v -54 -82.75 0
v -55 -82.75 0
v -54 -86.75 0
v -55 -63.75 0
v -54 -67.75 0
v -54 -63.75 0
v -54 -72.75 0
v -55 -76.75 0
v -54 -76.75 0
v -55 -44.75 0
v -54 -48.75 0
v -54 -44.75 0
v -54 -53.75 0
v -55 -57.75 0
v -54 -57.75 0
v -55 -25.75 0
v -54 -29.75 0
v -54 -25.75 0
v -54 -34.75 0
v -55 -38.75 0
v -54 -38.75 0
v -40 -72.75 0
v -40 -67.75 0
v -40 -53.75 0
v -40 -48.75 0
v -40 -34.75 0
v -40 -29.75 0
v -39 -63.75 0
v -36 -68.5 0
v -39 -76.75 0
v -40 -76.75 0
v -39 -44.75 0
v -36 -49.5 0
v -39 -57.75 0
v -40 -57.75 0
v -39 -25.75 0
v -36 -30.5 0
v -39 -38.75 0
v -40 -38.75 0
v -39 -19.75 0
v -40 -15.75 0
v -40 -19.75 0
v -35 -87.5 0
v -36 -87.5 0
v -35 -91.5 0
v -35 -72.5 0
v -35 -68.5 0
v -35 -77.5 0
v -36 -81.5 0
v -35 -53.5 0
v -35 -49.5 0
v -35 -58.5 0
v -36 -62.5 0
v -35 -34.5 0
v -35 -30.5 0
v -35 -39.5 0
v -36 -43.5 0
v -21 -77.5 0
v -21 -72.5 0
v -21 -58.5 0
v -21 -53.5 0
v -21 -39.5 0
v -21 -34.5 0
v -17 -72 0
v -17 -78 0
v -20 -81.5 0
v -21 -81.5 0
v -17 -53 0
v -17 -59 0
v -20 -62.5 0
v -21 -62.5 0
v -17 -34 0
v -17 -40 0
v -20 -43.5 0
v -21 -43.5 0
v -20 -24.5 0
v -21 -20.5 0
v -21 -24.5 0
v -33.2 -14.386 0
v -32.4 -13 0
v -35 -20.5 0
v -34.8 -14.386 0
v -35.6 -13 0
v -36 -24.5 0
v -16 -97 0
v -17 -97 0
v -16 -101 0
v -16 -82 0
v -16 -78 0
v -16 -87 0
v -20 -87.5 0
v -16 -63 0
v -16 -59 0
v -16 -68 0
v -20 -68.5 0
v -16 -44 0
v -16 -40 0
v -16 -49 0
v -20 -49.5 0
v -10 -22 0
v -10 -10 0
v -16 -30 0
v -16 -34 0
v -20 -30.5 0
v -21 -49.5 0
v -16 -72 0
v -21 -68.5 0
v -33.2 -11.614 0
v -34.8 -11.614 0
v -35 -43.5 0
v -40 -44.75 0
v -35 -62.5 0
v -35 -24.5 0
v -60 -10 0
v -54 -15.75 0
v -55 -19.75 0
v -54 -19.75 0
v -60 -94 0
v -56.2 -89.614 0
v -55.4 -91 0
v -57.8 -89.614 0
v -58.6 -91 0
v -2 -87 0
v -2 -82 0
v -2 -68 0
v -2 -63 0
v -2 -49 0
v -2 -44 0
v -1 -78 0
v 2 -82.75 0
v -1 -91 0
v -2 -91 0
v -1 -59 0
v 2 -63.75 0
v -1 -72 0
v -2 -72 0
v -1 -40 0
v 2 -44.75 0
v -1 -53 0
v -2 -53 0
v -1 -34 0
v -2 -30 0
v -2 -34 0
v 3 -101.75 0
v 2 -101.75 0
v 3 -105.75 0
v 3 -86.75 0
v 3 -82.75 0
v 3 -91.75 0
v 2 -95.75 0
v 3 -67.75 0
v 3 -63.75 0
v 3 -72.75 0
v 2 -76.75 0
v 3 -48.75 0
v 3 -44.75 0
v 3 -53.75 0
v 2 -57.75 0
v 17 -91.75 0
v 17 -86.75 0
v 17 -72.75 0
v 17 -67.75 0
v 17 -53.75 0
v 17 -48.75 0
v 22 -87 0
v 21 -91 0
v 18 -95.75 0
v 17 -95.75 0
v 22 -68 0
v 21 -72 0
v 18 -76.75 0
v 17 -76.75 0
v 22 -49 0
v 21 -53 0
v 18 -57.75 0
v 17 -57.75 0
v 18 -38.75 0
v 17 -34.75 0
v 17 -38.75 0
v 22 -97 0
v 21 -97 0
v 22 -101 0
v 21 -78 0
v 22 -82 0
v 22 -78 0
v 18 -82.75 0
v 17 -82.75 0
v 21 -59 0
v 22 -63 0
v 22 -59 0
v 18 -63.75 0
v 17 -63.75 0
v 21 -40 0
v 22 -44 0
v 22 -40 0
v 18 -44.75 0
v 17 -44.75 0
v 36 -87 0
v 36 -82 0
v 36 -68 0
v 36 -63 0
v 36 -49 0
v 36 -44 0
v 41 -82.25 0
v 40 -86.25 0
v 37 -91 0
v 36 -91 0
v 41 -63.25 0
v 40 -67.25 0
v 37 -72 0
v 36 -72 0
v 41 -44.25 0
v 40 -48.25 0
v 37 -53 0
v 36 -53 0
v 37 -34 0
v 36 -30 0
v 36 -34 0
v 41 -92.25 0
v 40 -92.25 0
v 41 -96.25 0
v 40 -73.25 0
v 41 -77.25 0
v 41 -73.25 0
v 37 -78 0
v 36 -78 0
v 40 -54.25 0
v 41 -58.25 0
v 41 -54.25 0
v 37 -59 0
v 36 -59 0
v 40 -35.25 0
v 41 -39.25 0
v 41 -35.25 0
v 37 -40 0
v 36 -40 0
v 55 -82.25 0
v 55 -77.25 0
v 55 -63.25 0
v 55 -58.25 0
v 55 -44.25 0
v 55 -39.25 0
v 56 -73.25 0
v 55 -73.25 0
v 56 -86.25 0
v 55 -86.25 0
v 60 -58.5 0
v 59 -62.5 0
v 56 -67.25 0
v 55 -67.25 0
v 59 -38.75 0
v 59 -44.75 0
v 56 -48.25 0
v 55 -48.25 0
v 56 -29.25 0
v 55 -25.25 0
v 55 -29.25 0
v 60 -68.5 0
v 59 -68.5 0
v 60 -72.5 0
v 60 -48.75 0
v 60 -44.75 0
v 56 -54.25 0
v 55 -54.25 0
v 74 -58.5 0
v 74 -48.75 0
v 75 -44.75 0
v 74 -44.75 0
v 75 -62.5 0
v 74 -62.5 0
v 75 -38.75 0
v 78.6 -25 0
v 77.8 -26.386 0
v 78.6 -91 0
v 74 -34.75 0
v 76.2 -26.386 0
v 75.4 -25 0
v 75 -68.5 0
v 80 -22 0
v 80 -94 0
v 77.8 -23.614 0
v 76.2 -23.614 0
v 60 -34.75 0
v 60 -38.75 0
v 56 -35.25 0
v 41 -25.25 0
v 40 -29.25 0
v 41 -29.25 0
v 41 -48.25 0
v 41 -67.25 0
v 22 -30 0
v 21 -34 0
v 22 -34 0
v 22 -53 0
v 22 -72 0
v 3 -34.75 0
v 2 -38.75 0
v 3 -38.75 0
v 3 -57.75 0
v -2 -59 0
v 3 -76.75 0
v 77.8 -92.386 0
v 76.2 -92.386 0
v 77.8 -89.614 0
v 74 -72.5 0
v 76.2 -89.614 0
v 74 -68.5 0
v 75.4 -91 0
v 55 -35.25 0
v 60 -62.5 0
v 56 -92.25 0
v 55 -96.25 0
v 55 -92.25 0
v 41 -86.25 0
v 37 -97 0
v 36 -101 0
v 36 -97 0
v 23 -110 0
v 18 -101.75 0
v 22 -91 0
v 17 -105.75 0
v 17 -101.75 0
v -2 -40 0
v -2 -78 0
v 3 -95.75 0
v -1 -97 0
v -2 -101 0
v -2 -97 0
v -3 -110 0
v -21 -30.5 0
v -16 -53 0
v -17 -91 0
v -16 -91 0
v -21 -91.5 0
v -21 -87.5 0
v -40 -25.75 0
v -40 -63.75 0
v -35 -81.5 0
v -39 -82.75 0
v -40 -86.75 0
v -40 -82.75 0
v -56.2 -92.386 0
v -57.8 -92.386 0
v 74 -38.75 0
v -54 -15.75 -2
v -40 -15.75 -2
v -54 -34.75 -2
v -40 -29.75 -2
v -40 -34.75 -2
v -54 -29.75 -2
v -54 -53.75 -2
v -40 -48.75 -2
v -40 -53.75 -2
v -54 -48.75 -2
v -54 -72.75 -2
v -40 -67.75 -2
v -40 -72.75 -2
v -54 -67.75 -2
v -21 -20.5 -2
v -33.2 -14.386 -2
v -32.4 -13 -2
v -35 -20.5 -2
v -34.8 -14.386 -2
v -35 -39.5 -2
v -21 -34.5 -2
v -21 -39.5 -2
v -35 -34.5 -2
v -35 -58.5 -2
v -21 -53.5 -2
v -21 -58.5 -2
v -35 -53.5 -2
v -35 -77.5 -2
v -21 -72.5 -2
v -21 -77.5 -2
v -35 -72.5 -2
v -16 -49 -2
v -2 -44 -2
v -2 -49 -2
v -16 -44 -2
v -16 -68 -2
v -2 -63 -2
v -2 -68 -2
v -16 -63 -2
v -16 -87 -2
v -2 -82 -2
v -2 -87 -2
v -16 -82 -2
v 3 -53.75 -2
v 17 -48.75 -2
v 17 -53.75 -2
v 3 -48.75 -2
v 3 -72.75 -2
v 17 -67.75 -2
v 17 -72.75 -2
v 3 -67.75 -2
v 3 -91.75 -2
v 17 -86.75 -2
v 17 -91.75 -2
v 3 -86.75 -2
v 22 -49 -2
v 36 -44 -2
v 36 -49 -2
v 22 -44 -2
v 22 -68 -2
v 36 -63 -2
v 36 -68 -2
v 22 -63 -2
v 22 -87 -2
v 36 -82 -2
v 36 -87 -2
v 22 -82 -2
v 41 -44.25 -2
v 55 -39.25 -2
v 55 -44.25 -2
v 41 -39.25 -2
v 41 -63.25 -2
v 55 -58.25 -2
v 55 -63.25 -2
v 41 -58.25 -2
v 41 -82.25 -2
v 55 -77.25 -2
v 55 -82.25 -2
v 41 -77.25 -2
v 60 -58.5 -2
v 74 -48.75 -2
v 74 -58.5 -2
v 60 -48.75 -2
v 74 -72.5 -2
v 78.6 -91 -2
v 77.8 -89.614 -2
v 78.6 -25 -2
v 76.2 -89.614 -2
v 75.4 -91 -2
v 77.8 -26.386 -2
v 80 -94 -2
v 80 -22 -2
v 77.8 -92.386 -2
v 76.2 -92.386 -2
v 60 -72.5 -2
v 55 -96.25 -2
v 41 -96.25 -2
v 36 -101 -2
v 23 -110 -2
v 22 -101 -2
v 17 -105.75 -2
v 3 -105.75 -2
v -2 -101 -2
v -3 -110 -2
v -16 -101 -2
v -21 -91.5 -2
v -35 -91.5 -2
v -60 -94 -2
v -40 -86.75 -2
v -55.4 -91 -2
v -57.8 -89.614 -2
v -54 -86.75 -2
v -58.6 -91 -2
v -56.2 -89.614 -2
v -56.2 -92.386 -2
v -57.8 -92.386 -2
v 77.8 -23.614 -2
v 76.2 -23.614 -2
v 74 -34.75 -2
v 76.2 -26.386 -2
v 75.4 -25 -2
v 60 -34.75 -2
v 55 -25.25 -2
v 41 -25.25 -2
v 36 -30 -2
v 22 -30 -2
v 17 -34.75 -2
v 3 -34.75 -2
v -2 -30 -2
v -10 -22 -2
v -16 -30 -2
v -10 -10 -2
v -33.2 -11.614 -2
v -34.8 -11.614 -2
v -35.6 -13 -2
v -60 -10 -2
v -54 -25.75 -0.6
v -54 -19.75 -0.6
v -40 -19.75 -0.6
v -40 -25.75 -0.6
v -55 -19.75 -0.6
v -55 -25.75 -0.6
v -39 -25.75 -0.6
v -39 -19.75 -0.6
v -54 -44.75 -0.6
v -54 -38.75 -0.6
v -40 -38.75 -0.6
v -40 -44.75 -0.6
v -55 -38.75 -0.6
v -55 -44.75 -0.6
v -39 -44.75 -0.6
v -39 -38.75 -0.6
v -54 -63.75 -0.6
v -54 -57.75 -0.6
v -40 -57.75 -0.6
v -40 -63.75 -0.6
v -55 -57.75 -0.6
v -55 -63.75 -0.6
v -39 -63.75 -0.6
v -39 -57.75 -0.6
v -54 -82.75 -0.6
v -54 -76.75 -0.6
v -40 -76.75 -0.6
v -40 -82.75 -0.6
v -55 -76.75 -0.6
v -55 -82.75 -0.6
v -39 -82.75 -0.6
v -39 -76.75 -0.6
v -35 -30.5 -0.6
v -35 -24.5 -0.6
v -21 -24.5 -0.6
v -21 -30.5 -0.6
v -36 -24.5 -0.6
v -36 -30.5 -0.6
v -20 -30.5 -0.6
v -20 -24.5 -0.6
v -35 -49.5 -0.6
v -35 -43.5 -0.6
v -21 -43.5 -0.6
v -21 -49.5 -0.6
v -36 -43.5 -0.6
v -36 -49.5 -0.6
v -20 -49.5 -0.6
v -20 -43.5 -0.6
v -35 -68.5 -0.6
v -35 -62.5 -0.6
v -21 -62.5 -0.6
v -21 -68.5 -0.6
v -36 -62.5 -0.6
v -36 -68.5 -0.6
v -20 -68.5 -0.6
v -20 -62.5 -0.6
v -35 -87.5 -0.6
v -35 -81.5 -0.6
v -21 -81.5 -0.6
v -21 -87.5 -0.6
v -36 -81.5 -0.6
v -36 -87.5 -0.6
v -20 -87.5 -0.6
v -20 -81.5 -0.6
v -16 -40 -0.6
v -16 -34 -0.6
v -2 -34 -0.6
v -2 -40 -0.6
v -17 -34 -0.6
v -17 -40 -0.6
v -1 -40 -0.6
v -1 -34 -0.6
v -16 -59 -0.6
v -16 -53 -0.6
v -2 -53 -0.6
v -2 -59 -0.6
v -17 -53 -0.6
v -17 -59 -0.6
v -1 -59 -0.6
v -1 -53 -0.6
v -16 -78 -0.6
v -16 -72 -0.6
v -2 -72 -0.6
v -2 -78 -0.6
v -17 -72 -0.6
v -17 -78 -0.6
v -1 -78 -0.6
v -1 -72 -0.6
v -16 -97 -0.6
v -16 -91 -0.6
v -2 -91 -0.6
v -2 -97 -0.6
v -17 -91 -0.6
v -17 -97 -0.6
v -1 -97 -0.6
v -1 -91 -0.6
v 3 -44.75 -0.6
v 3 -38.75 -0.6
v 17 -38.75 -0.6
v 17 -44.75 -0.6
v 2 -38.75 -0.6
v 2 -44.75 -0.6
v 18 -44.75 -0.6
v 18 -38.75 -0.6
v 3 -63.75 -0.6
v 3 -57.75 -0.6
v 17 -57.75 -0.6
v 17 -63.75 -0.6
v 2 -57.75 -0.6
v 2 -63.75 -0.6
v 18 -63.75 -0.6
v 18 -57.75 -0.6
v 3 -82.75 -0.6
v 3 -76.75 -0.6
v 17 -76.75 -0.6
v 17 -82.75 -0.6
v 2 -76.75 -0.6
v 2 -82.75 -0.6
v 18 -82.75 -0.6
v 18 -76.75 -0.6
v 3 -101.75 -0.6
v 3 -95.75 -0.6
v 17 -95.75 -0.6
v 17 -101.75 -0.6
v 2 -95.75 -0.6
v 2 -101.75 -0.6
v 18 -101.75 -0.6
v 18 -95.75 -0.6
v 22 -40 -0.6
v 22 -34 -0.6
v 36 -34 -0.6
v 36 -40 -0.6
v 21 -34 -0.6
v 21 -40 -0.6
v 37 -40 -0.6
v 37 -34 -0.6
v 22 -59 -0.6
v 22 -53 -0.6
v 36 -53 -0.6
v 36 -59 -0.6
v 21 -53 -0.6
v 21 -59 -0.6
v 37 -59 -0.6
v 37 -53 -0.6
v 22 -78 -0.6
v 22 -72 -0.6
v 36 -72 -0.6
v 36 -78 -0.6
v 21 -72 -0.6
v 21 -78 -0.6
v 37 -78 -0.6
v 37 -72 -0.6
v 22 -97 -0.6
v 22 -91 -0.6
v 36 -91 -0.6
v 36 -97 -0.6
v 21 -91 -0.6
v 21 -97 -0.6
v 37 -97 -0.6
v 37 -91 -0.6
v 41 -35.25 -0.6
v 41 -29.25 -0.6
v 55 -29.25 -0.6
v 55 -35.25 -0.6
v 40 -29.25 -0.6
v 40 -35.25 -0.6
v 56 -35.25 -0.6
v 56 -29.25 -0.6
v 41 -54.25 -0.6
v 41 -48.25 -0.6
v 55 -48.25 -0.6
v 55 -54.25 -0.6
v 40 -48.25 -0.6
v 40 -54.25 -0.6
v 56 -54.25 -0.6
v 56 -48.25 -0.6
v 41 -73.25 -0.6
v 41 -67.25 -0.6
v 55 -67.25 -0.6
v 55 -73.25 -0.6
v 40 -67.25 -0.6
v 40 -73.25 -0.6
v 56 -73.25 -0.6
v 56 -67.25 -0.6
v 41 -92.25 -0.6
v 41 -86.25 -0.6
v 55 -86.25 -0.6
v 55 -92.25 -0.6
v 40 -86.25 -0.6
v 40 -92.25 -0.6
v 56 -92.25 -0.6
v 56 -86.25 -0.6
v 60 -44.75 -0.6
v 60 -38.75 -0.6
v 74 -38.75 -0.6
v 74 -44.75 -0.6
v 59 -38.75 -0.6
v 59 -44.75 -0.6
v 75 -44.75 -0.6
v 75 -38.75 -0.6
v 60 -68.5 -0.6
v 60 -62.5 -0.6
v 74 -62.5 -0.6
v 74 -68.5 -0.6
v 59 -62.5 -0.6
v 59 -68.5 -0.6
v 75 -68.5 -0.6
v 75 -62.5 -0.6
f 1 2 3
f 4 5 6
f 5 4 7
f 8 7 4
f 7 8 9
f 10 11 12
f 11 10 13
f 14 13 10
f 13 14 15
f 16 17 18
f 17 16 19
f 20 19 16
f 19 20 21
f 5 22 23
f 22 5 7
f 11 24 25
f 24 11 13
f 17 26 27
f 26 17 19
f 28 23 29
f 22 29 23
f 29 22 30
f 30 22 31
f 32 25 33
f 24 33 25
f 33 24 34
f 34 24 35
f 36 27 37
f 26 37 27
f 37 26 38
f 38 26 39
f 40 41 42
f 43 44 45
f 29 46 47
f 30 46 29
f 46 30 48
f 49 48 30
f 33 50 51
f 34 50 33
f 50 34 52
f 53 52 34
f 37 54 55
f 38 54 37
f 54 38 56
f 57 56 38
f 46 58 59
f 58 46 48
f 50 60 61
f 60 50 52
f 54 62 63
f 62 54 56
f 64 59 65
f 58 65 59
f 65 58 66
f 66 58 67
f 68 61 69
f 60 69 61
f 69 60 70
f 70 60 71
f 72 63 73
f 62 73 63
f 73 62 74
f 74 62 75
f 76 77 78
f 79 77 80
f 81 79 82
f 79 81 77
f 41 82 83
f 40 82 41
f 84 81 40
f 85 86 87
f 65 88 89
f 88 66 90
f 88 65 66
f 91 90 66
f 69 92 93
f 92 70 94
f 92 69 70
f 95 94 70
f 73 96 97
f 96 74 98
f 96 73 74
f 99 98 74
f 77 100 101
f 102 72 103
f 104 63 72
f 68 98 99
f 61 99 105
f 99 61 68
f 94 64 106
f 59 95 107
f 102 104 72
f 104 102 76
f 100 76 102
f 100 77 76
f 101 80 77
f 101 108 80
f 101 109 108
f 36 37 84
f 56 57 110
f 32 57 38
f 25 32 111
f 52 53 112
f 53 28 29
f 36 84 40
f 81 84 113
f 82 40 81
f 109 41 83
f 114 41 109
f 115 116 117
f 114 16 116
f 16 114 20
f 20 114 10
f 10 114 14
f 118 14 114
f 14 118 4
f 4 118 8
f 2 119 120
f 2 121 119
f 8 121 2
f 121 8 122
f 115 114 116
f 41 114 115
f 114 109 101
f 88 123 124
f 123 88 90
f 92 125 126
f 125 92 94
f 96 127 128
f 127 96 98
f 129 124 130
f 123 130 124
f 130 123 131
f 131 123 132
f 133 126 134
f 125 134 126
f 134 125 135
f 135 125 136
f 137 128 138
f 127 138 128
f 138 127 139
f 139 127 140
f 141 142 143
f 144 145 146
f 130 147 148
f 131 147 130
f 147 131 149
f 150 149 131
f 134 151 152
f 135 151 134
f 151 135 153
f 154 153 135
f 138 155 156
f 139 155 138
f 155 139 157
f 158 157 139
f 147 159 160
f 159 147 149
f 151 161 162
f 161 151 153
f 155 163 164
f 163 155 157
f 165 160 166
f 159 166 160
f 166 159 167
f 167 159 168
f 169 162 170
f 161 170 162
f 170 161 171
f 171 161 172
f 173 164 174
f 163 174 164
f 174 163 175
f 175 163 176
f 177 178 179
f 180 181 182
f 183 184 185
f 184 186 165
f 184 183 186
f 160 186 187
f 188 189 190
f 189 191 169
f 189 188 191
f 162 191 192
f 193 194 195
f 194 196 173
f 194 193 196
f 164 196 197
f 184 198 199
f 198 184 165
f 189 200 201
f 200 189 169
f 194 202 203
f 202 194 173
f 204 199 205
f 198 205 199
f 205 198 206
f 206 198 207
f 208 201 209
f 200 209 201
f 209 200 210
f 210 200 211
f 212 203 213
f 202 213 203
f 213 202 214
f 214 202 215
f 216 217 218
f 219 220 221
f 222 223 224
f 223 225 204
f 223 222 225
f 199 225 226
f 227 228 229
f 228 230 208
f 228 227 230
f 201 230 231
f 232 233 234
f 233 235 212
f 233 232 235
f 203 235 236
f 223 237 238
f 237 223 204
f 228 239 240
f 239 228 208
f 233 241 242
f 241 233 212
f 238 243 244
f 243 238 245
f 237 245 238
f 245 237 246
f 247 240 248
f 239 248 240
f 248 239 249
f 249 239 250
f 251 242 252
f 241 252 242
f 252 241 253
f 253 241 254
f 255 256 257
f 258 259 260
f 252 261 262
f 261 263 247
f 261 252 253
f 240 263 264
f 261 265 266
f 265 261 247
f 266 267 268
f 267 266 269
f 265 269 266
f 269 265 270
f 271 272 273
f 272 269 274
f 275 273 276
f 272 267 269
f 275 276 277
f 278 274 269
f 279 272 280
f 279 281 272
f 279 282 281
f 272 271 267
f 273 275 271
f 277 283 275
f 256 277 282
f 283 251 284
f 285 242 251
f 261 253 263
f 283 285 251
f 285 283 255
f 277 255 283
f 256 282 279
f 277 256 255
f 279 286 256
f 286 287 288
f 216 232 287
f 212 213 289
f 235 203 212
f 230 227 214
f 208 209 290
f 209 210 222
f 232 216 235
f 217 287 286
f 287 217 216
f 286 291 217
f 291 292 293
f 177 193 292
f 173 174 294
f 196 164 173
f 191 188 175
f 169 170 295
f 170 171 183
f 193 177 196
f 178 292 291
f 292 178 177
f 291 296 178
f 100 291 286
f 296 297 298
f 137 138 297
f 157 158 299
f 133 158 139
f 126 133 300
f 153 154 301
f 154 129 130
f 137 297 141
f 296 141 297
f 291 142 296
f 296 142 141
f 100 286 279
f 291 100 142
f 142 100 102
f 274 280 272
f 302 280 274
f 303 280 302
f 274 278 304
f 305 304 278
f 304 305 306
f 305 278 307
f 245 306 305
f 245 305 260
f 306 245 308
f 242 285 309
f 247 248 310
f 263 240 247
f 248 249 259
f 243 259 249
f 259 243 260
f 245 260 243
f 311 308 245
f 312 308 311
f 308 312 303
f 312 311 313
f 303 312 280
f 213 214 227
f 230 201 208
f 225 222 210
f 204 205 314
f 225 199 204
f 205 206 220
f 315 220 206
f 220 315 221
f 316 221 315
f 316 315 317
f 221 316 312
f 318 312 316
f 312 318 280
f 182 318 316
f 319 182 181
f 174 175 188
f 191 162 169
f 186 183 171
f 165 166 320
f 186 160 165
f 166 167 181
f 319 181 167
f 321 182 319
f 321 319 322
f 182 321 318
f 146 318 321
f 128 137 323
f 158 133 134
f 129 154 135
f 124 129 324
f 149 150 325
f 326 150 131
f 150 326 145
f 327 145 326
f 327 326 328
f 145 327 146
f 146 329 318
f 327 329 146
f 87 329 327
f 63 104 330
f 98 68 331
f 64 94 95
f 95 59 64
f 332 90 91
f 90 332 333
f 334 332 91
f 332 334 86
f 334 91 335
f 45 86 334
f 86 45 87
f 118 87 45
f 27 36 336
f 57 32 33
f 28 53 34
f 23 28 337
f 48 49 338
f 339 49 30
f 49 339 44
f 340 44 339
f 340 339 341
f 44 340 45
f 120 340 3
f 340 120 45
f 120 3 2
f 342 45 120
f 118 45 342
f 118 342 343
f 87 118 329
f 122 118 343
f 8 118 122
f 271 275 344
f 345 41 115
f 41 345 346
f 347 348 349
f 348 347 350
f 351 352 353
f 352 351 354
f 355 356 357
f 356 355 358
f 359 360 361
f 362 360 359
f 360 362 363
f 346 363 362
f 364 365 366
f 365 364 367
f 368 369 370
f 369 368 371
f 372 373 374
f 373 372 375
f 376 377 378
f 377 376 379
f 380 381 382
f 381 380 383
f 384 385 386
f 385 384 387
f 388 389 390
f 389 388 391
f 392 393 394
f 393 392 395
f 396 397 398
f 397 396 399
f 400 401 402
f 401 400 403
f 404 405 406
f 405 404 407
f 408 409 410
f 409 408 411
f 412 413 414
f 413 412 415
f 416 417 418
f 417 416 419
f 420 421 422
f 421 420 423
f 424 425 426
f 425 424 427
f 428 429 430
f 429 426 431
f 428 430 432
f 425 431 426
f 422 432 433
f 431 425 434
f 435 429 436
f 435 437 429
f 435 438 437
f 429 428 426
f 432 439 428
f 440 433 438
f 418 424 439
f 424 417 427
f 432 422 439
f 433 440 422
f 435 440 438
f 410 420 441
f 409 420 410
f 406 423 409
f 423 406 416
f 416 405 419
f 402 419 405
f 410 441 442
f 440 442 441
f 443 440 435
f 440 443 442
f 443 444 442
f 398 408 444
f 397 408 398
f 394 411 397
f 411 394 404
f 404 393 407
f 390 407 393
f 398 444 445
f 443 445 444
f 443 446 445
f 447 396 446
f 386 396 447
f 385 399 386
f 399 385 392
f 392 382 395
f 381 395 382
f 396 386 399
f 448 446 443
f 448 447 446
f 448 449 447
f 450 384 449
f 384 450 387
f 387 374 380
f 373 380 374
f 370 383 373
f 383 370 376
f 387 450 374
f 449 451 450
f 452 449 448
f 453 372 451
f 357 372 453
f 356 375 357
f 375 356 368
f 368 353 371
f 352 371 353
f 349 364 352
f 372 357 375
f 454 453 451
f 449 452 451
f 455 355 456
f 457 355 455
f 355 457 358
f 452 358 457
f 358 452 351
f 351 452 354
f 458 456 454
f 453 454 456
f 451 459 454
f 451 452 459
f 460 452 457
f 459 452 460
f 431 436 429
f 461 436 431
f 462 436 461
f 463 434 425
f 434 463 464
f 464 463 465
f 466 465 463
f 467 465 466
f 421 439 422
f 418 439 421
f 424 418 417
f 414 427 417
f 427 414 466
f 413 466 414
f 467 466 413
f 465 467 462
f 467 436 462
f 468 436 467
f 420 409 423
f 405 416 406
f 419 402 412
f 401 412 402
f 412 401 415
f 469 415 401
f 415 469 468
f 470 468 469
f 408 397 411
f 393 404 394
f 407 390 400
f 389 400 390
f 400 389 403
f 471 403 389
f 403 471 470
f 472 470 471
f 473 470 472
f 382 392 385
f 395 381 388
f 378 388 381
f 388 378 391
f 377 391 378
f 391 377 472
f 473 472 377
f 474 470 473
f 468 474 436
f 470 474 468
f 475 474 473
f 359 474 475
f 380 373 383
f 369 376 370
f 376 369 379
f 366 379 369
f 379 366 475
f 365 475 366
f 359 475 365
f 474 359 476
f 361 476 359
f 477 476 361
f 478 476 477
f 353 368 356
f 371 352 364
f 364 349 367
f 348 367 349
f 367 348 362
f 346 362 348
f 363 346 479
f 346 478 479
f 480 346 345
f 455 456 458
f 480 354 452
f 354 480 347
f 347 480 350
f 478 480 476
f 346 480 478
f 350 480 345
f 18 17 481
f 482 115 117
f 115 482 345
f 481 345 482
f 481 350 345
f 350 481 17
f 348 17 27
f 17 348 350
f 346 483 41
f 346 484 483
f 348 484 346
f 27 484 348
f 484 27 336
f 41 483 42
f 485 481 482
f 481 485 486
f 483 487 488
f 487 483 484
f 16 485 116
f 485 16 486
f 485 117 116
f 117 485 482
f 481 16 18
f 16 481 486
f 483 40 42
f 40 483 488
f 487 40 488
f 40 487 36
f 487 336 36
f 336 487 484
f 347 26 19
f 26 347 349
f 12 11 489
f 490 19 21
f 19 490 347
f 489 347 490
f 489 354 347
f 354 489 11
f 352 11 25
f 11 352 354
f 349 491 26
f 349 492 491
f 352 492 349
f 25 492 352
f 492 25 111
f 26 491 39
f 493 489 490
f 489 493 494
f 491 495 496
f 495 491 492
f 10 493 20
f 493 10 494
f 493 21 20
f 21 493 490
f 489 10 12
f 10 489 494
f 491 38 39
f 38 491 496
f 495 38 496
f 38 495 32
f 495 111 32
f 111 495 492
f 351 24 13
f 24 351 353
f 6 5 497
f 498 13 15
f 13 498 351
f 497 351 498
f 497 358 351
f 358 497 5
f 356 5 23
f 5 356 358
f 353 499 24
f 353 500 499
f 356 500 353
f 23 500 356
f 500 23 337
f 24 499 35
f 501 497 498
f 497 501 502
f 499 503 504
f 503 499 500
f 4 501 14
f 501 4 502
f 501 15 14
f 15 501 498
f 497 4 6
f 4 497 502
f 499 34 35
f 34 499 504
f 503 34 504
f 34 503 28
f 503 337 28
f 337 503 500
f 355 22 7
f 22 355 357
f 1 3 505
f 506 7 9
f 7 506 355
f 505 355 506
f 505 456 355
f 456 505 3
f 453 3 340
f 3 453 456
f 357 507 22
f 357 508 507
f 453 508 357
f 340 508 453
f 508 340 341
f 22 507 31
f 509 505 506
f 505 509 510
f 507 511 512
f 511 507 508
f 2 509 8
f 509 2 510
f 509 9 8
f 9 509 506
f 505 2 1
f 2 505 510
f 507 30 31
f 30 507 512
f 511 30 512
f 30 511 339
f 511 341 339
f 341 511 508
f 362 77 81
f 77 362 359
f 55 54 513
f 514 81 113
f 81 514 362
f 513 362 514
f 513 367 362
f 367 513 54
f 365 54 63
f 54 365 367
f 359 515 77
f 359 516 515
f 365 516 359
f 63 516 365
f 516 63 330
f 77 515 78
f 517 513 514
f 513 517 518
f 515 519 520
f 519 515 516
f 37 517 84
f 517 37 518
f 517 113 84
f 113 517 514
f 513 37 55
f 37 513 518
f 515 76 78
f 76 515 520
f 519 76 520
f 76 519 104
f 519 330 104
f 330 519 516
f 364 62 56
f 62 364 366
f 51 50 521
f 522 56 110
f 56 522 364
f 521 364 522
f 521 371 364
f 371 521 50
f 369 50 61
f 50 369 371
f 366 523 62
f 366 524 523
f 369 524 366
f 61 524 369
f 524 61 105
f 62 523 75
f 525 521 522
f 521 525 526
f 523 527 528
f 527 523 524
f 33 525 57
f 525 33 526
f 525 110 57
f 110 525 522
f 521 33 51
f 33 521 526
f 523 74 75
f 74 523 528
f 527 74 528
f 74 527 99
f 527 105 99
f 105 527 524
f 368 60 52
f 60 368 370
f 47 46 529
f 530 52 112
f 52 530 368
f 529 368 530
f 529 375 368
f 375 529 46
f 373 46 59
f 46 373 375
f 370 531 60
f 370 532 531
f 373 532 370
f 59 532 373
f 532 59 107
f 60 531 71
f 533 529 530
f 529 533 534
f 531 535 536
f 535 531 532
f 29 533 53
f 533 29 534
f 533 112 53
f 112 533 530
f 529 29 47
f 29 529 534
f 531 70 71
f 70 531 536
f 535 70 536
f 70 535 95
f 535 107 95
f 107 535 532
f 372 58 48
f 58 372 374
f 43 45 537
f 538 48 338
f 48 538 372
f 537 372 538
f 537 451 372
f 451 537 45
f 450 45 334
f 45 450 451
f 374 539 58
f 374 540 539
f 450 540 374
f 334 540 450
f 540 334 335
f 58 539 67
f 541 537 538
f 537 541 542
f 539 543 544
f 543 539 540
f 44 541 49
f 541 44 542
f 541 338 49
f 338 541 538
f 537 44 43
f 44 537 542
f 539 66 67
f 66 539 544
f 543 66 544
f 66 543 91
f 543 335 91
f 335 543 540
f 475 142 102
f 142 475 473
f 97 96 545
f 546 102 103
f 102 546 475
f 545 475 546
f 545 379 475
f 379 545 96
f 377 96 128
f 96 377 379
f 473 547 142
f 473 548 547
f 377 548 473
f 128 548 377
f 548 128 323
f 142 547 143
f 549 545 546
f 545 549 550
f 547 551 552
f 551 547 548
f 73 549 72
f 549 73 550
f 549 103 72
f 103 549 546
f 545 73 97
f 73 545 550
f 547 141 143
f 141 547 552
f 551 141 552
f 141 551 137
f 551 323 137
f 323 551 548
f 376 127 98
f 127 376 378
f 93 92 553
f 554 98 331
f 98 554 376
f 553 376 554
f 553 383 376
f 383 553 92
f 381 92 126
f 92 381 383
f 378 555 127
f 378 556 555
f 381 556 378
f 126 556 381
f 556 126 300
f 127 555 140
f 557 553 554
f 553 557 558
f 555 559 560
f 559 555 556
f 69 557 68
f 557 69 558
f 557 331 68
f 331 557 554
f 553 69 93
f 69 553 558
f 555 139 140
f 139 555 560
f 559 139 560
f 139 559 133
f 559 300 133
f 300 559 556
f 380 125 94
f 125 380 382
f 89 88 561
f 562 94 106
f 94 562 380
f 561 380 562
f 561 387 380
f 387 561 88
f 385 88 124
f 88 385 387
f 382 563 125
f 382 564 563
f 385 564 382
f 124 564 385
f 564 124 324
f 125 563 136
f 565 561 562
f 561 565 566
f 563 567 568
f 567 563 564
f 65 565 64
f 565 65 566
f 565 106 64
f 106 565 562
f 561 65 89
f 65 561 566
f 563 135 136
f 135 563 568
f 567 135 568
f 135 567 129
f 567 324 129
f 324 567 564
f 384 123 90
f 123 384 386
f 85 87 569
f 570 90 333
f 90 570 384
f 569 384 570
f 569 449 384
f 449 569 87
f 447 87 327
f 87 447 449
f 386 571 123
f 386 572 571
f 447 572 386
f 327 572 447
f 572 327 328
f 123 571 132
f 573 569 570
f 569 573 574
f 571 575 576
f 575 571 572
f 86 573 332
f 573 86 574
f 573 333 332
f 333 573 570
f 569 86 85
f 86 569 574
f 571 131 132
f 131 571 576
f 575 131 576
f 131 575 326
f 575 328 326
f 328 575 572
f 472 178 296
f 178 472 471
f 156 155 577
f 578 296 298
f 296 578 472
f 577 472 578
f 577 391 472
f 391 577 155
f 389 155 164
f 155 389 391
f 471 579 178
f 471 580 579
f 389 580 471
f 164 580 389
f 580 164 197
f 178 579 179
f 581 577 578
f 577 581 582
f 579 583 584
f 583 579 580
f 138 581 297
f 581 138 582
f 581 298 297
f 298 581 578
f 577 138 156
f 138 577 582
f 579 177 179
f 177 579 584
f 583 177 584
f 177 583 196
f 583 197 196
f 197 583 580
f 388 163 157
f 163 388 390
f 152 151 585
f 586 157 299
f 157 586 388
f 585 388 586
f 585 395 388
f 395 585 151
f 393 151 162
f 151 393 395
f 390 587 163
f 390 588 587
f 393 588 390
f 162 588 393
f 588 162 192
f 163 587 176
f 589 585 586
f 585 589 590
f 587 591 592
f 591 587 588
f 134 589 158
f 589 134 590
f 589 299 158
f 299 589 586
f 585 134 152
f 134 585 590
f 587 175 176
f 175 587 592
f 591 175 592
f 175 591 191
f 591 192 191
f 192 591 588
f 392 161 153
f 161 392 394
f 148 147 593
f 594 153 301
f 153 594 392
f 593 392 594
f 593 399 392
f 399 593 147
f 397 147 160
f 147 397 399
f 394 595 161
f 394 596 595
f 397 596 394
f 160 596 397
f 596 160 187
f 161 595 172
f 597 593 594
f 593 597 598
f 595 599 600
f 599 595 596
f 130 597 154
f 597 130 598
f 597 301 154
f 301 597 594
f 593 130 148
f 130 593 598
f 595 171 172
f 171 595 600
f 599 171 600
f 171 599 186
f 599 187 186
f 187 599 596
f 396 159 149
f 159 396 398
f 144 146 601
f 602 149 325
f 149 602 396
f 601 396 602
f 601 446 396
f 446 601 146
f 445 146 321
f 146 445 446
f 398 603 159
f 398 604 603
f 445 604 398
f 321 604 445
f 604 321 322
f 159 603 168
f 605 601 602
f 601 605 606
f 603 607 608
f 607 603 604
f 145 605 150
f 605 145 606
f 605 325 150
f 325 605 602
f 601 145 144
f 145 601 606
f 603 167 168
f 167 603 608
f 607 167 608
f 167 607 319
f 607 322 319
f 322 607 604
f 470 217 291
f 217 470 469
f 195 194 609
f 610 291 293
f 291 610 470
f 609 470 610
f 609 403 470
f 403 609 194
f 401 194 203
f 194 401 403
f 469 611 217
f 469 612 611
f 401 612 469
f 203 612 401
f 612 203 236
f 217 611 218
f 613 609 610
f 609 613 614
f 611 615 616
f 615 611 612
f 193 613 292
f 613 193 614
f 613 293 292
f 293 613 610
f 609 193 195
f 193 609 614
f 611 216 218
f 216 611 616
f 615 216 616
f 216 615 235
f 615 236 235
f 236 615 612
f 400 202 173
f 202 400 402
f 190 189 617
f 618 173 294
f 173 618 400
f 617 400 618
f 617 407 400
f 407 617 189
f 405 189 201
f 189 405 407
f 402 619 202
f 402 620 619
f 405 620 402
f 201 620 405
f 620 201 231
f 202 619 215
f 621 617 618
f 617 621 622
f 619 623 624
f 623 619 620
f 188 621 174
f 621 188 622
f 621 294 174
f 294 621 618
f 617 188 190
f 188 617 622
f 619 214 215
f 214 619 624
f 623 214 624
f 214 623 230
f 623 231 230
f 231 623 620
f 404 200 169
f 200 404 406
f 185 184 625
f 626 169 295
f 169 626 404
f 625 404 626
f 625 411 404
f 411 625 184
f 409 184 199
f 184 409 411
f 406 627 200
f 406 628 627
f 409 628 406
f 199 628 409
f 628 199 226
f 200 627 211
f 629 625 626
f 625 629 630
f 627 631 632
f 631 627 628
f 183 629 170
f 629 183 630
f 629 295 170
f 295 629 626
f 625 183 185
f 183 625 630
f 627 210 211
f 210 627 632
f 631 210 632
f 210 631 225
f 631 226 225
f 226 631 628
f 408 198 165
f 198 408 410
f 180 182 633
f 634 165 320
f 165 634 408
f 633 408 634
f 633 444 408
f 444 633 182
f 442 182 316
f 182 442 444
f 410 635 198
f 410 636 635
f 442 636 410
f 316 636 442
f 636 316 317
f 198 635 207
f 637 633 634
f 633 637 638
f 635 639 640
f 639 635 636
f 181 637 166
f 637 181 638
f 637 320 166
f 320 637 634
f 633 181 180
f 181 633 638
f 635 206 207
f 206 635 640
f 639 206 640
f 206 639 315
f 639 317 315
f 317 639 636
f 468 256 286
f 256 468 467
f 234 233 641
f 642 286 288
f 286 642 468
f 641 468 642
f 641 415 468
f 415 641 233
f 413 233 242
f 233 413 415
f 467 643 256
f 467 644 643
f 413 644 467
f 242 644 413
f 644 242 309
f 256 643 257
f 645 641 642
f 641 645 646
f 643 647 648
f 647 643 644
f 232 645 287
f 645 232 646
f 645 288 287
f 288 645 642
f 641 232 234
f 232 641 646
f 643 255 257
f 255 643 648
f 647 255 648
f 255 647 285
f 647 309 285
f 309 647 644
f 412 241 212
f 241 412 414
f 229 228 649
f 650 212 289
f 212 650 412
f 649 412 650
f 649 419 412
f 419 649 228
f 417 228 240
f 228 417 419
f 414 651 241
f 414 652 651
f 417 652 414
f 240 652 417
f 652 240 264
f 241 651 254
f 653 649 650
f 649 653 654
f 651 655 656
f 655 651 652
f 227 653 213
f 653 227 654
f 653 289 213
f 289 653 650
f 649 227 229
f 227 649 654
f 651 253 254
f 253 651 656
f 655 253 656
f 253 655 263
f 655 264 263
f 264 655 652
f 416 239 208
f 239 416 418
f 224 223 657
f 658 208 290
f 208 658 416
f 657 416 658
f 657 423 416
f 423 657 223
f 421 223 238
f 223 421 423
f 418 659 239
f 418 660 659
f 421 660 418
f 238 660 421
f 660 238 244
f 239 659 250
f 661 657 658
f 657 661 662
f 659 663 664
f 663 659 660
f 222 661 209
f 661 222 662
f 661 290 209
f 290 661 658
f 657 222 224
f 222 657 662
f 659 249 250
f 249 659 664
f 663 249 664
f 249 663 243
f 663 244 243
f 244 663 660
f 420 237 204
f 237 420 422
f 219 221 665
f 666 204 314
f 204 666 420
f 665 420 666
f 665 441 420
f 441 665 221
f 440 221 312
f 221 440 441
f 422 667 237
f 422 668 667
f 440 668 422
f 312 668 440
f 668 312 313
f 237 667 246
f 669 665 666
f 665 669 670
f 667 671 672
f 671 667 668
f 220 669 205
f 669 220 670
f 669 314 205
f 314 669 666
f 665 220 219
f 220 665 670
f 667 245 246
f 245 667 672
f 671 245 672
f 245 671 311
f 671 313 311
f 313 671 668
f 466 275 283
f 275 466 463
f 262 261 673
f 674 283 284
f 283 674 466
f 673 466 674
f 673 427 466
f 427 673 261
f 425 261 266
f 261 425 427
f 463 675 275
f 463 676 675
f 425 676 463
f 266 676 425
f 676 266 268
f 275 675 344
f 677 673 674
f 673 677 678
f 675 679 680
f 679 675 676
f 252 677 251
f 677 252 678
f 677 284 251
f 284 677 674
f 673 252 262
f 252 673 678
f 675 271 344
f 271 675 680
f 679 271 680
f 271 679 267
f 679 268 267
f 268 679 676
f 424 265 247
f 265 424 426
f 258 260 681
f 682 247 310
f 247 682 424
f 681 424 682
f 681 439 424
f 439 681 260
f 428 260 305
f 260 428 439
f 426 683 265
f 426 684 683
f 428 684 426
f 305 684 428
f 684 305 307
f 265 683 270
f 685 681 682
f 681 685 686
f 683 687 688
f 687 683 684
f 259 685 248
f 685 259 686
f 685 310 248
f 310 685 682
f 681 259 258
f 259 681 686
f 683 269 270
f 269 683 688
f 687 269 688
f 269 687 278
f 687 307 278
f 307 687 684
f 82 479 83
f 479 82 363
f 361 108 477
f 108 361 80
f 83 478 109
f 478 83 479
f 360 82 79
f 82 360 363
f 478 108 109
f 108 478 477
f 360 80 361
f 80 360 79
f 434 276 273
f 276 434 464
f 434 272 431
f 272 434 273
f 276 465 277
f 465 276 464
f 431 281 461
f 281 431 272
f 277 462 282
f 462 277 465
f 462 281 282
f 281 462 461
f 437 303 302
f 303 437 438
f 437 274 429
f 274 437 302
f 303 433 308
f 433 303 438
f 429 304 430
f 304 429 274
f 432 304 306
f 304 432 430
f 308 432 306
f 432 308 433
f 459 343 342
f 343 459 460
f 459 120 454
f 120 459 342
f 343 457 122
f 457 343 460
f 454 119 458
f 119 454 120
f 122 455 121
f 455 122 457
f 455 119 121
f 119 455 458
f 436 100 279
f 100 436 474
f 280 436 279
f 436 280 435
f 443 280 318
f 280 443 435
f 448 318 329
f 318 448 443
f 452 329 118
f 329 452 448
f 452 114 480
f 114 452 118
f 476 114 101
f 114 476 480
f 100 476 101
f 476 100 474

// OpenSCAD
// file: common.scad
module keyswitch_hole(x=0, y=0, a=0) {
    translate([x, y, 0]) {
        rotate([0, 0, 90+a]) {
            linear_extrude(height = 2) {
            square([14, 14], center = true);
            //translate([-8, 3, 0]) square([1, 3]);
            //translate([-8, -6, 0]) square([1, 3]);
            //translate([7, 3, 0]) square([1, 3]);
            //translate([7, -6, 0]) square([1, 3]);
            }
            linear_extrude(height = 0.6) {
                translate([-3, 7]) square([6, 1]);
            translate([-3, -8]) square([6, 1]);
            }
        }
    }
}

keyswitch_hole();

module joint_male_face() {
    translate([-1, 0])
    square([2,4]);
    translate([-3, 2])
    square([6,2]);
}

module joint_male(pos=[0,0]) {
    translate(pos){
      rotate([0,0,180]){
        linear_extrude(height=10)
        joint_male_face();
        
        translate([0,2,10])
        rotate([-90,0,0])
        linear_extrude(height=2)
        circle(3, $fn=12);
        
        translate([0,0,10])
        rotate([-90,0,0])
        linear_extrude(height=2)
        circle(1, $fn=12);
      }
    }
}

module joint_female(pos=[0,0]) {
    delta = 0.6;
    translate(pos){
      rotate([0,0,180]){
        linear_extrude(height=10)
        offset(delta=delta)
        joint_male_face();
        
        translate([0,1.6,10])
        rotate([-90,0,0])
        linear_extrude(height=2.8)
        offset(delta=delta)
        circle(3, $fn=12);

        translate([0,-0.4,10])
        rotate([-90,0,0])
        linear_extrude(height=2.8)
        offset(delta=delta)
        circle(1, $fn=12);
      }
    }
}


joint_male([20, 0]);
joint_female([30, 0]);
// file: finger.scad
use <common.scad>;

UNIT = 19;
UNIT_H = UNIT / 2;
UNIT_Q = UNIT / 4;
UNIT_E = UNIT / 8;

KEY_OFFSET_X = 10;
KEY_OFFSET_Y = 8;

finger_plate_points = [
    [-60,0],
    [-10,0],
    [-10,12],
    [80, 12],
    [80, 84],
    [23, 100],
    [-3, 100],
    [-60, 84],
];

finger_plate_sc_points = [
    [-34, 3],
    [80-3, 12+3],
    [80-3, 84 - 3],
    [-60+3, 84 - 3],
];

module finger_plate_nohole() {
    linear_extrude(height = 2)
    polygon(points=finger_plate_points);
}

module keyswitch_col(x=0,y=0,c=3,a=0) {
    rotate([0, 0, a])
    for (i = [0:c-1]) {
        keyswitch_hole(x, y+19*i);
    }
}

module finger_plate_holes() {
    // G
    GX = KEY_OFFSET_X - UNIT * 3;
    GY = KEY_OFFSET_Y + UNIT_Q;
    echo("G: ", GX, GY);
    keyswitch_col(GX, GY, 4);
    // F
    FX = KEY_OFFSET_X- UNIT * 2;
    FY = KEY_OFFSET_Y + UNIT_H;
    echo("F: ", FX, FY);
    keyswitch_col(FX, FY, 4);
    // E
    EX = KEY_OFFSET_X - UNIT;
    EY = KEY_OFFSET_Y + UNIT_H + UNIT_Q + UNIT_Q;
    echo("E: ", EX, EY);
    keyswitch_col(EX, EY, 4);
    // D
    DX = KEY_OFFSET_X;
    DY = KEY_OFFSET_Y + UNIT + UNIT_Q;
    echo("D: ", DX, DY);
    keyswitch_col(DX, DY, 4);
    // C
    CX = KEY_OFFSET_X+ UNIT;
    CY = KEY_OFFSET_Y + UNIT;
    echo("C: ", CX, CY);
    keyswitch_col(CX, CY, 4);
    // B
    BX = KEY_OFFSET_X+UNIT * 2;
    BY = KEY_OFFSET_Y+ UNIT_H + UNIT_Q;
    echo("B: ", BX, BY);
    keyswitch_col(BX, BY, 4);
    // A
    AX = KEY_OFFSET_X+UNIT*3;
    AY = KEY_OFFSET_Y+UNIT + UNIT_Q;
    echo("A: ", AX, AY);
    keyswitch_col(AX, AY, 1);
    echo("A2: ", AX, AY + UNIT + UNIT_Q);
    keyswitch_col(AX, AY + UNIT + UNIT_Q, 1);  
    for(p=finger_plate_sc_points){
        linear_extrude(height=5)
            translate(p)
            circle(1.6);
    }
}

module finger_plate() {
    difference() {
        finger_plate_nohole();
        finger_plate_holes();
    }
}

//tilt_angle = [-5,-5,0];
tilt_angle = [4,-10,0];
tilt_angle_r = tilt_angle * -1;
echo(tilt_angle_r);

//height = 15;
height = 22;

module finger_case_outer_face() {
    projection()
        translate([0,0,height])
        rotate(tilt_angle)
        linear_extrude(height=2)
        offset(2)
        polygon(points=finger_plate_points);
}

module finger_case_inner_face() {
    projection()
        translate([0,0,height])
        rotate(tilt_angle)
        linear_extrude(height=2)
        offset(-2)
        polygon(points=finger_plate_points);
}

module finger_case_bottom_face() {
    difference() {
        finger_case_outer_face();
        finger_case_inner_face();
    }
    projection()
    translate([0,0,height])
    rotate(tilt_angle)
    for(p=finger_plate_sc_points){
        linear_extrude(height=1)
        translate(p)
        circle(4);
    }
}


module finger_case_nohole() {
    difference() {
        linear_extrude(height=50)
        finger_case_bottom_face();
    
        translate([0,0,height])
        rotate(tilt_angle){
            linear_extrude(height=50)
            square(300, center=true);
            // sc hole
            translate([0,0,-9])
            linear_extrude(height=9)
            for(p=finger_plate_sc_points){
                translate(p)
                circle(1.6);
            }
            // plate_hole
            translate([0,0,-2])
            linear_extrude(height=2)
            offset(0.2)
            polygon(points=finger_plate_points);
        }
    }
}

module finger_case_hole() {
    // cable hole
    translate([55,15,0])
    rotate([90,0,0])
    linear_extrude(height=20){
        translate([0, 15])
        circle(6);
        translate([-6,15])
        square([12, 30]);
    }
    // USB hole
    translate([12,110,0])
    rotate([90,0,0])
    linear_extrude(height=20) {
        //translate([0, 10])
        //circle(9);
        translate([-9, 8])
        square([18, 40]);
    }
    // TRRS hole
    translate([72.5,95,0])
    rotate([90,0,-30])
    linear_extrude(height=20) {
        translate([0, 30])
        circle(5);
        translate([-5, 30])
        square([10, 30]);
    }
}

module finger_case() {
    difference() {
        finger_case_nohole();
        finger_case_hole();
    }
    for (x = [27, 67]) {
        joint_male([x, 10]);
    }
}

finger_case();


translate([0,-110])
finger_plate();
// main file
use <finger.scad>;

translate([0,-10])
rotate([180,0,0])
finger_plate();
